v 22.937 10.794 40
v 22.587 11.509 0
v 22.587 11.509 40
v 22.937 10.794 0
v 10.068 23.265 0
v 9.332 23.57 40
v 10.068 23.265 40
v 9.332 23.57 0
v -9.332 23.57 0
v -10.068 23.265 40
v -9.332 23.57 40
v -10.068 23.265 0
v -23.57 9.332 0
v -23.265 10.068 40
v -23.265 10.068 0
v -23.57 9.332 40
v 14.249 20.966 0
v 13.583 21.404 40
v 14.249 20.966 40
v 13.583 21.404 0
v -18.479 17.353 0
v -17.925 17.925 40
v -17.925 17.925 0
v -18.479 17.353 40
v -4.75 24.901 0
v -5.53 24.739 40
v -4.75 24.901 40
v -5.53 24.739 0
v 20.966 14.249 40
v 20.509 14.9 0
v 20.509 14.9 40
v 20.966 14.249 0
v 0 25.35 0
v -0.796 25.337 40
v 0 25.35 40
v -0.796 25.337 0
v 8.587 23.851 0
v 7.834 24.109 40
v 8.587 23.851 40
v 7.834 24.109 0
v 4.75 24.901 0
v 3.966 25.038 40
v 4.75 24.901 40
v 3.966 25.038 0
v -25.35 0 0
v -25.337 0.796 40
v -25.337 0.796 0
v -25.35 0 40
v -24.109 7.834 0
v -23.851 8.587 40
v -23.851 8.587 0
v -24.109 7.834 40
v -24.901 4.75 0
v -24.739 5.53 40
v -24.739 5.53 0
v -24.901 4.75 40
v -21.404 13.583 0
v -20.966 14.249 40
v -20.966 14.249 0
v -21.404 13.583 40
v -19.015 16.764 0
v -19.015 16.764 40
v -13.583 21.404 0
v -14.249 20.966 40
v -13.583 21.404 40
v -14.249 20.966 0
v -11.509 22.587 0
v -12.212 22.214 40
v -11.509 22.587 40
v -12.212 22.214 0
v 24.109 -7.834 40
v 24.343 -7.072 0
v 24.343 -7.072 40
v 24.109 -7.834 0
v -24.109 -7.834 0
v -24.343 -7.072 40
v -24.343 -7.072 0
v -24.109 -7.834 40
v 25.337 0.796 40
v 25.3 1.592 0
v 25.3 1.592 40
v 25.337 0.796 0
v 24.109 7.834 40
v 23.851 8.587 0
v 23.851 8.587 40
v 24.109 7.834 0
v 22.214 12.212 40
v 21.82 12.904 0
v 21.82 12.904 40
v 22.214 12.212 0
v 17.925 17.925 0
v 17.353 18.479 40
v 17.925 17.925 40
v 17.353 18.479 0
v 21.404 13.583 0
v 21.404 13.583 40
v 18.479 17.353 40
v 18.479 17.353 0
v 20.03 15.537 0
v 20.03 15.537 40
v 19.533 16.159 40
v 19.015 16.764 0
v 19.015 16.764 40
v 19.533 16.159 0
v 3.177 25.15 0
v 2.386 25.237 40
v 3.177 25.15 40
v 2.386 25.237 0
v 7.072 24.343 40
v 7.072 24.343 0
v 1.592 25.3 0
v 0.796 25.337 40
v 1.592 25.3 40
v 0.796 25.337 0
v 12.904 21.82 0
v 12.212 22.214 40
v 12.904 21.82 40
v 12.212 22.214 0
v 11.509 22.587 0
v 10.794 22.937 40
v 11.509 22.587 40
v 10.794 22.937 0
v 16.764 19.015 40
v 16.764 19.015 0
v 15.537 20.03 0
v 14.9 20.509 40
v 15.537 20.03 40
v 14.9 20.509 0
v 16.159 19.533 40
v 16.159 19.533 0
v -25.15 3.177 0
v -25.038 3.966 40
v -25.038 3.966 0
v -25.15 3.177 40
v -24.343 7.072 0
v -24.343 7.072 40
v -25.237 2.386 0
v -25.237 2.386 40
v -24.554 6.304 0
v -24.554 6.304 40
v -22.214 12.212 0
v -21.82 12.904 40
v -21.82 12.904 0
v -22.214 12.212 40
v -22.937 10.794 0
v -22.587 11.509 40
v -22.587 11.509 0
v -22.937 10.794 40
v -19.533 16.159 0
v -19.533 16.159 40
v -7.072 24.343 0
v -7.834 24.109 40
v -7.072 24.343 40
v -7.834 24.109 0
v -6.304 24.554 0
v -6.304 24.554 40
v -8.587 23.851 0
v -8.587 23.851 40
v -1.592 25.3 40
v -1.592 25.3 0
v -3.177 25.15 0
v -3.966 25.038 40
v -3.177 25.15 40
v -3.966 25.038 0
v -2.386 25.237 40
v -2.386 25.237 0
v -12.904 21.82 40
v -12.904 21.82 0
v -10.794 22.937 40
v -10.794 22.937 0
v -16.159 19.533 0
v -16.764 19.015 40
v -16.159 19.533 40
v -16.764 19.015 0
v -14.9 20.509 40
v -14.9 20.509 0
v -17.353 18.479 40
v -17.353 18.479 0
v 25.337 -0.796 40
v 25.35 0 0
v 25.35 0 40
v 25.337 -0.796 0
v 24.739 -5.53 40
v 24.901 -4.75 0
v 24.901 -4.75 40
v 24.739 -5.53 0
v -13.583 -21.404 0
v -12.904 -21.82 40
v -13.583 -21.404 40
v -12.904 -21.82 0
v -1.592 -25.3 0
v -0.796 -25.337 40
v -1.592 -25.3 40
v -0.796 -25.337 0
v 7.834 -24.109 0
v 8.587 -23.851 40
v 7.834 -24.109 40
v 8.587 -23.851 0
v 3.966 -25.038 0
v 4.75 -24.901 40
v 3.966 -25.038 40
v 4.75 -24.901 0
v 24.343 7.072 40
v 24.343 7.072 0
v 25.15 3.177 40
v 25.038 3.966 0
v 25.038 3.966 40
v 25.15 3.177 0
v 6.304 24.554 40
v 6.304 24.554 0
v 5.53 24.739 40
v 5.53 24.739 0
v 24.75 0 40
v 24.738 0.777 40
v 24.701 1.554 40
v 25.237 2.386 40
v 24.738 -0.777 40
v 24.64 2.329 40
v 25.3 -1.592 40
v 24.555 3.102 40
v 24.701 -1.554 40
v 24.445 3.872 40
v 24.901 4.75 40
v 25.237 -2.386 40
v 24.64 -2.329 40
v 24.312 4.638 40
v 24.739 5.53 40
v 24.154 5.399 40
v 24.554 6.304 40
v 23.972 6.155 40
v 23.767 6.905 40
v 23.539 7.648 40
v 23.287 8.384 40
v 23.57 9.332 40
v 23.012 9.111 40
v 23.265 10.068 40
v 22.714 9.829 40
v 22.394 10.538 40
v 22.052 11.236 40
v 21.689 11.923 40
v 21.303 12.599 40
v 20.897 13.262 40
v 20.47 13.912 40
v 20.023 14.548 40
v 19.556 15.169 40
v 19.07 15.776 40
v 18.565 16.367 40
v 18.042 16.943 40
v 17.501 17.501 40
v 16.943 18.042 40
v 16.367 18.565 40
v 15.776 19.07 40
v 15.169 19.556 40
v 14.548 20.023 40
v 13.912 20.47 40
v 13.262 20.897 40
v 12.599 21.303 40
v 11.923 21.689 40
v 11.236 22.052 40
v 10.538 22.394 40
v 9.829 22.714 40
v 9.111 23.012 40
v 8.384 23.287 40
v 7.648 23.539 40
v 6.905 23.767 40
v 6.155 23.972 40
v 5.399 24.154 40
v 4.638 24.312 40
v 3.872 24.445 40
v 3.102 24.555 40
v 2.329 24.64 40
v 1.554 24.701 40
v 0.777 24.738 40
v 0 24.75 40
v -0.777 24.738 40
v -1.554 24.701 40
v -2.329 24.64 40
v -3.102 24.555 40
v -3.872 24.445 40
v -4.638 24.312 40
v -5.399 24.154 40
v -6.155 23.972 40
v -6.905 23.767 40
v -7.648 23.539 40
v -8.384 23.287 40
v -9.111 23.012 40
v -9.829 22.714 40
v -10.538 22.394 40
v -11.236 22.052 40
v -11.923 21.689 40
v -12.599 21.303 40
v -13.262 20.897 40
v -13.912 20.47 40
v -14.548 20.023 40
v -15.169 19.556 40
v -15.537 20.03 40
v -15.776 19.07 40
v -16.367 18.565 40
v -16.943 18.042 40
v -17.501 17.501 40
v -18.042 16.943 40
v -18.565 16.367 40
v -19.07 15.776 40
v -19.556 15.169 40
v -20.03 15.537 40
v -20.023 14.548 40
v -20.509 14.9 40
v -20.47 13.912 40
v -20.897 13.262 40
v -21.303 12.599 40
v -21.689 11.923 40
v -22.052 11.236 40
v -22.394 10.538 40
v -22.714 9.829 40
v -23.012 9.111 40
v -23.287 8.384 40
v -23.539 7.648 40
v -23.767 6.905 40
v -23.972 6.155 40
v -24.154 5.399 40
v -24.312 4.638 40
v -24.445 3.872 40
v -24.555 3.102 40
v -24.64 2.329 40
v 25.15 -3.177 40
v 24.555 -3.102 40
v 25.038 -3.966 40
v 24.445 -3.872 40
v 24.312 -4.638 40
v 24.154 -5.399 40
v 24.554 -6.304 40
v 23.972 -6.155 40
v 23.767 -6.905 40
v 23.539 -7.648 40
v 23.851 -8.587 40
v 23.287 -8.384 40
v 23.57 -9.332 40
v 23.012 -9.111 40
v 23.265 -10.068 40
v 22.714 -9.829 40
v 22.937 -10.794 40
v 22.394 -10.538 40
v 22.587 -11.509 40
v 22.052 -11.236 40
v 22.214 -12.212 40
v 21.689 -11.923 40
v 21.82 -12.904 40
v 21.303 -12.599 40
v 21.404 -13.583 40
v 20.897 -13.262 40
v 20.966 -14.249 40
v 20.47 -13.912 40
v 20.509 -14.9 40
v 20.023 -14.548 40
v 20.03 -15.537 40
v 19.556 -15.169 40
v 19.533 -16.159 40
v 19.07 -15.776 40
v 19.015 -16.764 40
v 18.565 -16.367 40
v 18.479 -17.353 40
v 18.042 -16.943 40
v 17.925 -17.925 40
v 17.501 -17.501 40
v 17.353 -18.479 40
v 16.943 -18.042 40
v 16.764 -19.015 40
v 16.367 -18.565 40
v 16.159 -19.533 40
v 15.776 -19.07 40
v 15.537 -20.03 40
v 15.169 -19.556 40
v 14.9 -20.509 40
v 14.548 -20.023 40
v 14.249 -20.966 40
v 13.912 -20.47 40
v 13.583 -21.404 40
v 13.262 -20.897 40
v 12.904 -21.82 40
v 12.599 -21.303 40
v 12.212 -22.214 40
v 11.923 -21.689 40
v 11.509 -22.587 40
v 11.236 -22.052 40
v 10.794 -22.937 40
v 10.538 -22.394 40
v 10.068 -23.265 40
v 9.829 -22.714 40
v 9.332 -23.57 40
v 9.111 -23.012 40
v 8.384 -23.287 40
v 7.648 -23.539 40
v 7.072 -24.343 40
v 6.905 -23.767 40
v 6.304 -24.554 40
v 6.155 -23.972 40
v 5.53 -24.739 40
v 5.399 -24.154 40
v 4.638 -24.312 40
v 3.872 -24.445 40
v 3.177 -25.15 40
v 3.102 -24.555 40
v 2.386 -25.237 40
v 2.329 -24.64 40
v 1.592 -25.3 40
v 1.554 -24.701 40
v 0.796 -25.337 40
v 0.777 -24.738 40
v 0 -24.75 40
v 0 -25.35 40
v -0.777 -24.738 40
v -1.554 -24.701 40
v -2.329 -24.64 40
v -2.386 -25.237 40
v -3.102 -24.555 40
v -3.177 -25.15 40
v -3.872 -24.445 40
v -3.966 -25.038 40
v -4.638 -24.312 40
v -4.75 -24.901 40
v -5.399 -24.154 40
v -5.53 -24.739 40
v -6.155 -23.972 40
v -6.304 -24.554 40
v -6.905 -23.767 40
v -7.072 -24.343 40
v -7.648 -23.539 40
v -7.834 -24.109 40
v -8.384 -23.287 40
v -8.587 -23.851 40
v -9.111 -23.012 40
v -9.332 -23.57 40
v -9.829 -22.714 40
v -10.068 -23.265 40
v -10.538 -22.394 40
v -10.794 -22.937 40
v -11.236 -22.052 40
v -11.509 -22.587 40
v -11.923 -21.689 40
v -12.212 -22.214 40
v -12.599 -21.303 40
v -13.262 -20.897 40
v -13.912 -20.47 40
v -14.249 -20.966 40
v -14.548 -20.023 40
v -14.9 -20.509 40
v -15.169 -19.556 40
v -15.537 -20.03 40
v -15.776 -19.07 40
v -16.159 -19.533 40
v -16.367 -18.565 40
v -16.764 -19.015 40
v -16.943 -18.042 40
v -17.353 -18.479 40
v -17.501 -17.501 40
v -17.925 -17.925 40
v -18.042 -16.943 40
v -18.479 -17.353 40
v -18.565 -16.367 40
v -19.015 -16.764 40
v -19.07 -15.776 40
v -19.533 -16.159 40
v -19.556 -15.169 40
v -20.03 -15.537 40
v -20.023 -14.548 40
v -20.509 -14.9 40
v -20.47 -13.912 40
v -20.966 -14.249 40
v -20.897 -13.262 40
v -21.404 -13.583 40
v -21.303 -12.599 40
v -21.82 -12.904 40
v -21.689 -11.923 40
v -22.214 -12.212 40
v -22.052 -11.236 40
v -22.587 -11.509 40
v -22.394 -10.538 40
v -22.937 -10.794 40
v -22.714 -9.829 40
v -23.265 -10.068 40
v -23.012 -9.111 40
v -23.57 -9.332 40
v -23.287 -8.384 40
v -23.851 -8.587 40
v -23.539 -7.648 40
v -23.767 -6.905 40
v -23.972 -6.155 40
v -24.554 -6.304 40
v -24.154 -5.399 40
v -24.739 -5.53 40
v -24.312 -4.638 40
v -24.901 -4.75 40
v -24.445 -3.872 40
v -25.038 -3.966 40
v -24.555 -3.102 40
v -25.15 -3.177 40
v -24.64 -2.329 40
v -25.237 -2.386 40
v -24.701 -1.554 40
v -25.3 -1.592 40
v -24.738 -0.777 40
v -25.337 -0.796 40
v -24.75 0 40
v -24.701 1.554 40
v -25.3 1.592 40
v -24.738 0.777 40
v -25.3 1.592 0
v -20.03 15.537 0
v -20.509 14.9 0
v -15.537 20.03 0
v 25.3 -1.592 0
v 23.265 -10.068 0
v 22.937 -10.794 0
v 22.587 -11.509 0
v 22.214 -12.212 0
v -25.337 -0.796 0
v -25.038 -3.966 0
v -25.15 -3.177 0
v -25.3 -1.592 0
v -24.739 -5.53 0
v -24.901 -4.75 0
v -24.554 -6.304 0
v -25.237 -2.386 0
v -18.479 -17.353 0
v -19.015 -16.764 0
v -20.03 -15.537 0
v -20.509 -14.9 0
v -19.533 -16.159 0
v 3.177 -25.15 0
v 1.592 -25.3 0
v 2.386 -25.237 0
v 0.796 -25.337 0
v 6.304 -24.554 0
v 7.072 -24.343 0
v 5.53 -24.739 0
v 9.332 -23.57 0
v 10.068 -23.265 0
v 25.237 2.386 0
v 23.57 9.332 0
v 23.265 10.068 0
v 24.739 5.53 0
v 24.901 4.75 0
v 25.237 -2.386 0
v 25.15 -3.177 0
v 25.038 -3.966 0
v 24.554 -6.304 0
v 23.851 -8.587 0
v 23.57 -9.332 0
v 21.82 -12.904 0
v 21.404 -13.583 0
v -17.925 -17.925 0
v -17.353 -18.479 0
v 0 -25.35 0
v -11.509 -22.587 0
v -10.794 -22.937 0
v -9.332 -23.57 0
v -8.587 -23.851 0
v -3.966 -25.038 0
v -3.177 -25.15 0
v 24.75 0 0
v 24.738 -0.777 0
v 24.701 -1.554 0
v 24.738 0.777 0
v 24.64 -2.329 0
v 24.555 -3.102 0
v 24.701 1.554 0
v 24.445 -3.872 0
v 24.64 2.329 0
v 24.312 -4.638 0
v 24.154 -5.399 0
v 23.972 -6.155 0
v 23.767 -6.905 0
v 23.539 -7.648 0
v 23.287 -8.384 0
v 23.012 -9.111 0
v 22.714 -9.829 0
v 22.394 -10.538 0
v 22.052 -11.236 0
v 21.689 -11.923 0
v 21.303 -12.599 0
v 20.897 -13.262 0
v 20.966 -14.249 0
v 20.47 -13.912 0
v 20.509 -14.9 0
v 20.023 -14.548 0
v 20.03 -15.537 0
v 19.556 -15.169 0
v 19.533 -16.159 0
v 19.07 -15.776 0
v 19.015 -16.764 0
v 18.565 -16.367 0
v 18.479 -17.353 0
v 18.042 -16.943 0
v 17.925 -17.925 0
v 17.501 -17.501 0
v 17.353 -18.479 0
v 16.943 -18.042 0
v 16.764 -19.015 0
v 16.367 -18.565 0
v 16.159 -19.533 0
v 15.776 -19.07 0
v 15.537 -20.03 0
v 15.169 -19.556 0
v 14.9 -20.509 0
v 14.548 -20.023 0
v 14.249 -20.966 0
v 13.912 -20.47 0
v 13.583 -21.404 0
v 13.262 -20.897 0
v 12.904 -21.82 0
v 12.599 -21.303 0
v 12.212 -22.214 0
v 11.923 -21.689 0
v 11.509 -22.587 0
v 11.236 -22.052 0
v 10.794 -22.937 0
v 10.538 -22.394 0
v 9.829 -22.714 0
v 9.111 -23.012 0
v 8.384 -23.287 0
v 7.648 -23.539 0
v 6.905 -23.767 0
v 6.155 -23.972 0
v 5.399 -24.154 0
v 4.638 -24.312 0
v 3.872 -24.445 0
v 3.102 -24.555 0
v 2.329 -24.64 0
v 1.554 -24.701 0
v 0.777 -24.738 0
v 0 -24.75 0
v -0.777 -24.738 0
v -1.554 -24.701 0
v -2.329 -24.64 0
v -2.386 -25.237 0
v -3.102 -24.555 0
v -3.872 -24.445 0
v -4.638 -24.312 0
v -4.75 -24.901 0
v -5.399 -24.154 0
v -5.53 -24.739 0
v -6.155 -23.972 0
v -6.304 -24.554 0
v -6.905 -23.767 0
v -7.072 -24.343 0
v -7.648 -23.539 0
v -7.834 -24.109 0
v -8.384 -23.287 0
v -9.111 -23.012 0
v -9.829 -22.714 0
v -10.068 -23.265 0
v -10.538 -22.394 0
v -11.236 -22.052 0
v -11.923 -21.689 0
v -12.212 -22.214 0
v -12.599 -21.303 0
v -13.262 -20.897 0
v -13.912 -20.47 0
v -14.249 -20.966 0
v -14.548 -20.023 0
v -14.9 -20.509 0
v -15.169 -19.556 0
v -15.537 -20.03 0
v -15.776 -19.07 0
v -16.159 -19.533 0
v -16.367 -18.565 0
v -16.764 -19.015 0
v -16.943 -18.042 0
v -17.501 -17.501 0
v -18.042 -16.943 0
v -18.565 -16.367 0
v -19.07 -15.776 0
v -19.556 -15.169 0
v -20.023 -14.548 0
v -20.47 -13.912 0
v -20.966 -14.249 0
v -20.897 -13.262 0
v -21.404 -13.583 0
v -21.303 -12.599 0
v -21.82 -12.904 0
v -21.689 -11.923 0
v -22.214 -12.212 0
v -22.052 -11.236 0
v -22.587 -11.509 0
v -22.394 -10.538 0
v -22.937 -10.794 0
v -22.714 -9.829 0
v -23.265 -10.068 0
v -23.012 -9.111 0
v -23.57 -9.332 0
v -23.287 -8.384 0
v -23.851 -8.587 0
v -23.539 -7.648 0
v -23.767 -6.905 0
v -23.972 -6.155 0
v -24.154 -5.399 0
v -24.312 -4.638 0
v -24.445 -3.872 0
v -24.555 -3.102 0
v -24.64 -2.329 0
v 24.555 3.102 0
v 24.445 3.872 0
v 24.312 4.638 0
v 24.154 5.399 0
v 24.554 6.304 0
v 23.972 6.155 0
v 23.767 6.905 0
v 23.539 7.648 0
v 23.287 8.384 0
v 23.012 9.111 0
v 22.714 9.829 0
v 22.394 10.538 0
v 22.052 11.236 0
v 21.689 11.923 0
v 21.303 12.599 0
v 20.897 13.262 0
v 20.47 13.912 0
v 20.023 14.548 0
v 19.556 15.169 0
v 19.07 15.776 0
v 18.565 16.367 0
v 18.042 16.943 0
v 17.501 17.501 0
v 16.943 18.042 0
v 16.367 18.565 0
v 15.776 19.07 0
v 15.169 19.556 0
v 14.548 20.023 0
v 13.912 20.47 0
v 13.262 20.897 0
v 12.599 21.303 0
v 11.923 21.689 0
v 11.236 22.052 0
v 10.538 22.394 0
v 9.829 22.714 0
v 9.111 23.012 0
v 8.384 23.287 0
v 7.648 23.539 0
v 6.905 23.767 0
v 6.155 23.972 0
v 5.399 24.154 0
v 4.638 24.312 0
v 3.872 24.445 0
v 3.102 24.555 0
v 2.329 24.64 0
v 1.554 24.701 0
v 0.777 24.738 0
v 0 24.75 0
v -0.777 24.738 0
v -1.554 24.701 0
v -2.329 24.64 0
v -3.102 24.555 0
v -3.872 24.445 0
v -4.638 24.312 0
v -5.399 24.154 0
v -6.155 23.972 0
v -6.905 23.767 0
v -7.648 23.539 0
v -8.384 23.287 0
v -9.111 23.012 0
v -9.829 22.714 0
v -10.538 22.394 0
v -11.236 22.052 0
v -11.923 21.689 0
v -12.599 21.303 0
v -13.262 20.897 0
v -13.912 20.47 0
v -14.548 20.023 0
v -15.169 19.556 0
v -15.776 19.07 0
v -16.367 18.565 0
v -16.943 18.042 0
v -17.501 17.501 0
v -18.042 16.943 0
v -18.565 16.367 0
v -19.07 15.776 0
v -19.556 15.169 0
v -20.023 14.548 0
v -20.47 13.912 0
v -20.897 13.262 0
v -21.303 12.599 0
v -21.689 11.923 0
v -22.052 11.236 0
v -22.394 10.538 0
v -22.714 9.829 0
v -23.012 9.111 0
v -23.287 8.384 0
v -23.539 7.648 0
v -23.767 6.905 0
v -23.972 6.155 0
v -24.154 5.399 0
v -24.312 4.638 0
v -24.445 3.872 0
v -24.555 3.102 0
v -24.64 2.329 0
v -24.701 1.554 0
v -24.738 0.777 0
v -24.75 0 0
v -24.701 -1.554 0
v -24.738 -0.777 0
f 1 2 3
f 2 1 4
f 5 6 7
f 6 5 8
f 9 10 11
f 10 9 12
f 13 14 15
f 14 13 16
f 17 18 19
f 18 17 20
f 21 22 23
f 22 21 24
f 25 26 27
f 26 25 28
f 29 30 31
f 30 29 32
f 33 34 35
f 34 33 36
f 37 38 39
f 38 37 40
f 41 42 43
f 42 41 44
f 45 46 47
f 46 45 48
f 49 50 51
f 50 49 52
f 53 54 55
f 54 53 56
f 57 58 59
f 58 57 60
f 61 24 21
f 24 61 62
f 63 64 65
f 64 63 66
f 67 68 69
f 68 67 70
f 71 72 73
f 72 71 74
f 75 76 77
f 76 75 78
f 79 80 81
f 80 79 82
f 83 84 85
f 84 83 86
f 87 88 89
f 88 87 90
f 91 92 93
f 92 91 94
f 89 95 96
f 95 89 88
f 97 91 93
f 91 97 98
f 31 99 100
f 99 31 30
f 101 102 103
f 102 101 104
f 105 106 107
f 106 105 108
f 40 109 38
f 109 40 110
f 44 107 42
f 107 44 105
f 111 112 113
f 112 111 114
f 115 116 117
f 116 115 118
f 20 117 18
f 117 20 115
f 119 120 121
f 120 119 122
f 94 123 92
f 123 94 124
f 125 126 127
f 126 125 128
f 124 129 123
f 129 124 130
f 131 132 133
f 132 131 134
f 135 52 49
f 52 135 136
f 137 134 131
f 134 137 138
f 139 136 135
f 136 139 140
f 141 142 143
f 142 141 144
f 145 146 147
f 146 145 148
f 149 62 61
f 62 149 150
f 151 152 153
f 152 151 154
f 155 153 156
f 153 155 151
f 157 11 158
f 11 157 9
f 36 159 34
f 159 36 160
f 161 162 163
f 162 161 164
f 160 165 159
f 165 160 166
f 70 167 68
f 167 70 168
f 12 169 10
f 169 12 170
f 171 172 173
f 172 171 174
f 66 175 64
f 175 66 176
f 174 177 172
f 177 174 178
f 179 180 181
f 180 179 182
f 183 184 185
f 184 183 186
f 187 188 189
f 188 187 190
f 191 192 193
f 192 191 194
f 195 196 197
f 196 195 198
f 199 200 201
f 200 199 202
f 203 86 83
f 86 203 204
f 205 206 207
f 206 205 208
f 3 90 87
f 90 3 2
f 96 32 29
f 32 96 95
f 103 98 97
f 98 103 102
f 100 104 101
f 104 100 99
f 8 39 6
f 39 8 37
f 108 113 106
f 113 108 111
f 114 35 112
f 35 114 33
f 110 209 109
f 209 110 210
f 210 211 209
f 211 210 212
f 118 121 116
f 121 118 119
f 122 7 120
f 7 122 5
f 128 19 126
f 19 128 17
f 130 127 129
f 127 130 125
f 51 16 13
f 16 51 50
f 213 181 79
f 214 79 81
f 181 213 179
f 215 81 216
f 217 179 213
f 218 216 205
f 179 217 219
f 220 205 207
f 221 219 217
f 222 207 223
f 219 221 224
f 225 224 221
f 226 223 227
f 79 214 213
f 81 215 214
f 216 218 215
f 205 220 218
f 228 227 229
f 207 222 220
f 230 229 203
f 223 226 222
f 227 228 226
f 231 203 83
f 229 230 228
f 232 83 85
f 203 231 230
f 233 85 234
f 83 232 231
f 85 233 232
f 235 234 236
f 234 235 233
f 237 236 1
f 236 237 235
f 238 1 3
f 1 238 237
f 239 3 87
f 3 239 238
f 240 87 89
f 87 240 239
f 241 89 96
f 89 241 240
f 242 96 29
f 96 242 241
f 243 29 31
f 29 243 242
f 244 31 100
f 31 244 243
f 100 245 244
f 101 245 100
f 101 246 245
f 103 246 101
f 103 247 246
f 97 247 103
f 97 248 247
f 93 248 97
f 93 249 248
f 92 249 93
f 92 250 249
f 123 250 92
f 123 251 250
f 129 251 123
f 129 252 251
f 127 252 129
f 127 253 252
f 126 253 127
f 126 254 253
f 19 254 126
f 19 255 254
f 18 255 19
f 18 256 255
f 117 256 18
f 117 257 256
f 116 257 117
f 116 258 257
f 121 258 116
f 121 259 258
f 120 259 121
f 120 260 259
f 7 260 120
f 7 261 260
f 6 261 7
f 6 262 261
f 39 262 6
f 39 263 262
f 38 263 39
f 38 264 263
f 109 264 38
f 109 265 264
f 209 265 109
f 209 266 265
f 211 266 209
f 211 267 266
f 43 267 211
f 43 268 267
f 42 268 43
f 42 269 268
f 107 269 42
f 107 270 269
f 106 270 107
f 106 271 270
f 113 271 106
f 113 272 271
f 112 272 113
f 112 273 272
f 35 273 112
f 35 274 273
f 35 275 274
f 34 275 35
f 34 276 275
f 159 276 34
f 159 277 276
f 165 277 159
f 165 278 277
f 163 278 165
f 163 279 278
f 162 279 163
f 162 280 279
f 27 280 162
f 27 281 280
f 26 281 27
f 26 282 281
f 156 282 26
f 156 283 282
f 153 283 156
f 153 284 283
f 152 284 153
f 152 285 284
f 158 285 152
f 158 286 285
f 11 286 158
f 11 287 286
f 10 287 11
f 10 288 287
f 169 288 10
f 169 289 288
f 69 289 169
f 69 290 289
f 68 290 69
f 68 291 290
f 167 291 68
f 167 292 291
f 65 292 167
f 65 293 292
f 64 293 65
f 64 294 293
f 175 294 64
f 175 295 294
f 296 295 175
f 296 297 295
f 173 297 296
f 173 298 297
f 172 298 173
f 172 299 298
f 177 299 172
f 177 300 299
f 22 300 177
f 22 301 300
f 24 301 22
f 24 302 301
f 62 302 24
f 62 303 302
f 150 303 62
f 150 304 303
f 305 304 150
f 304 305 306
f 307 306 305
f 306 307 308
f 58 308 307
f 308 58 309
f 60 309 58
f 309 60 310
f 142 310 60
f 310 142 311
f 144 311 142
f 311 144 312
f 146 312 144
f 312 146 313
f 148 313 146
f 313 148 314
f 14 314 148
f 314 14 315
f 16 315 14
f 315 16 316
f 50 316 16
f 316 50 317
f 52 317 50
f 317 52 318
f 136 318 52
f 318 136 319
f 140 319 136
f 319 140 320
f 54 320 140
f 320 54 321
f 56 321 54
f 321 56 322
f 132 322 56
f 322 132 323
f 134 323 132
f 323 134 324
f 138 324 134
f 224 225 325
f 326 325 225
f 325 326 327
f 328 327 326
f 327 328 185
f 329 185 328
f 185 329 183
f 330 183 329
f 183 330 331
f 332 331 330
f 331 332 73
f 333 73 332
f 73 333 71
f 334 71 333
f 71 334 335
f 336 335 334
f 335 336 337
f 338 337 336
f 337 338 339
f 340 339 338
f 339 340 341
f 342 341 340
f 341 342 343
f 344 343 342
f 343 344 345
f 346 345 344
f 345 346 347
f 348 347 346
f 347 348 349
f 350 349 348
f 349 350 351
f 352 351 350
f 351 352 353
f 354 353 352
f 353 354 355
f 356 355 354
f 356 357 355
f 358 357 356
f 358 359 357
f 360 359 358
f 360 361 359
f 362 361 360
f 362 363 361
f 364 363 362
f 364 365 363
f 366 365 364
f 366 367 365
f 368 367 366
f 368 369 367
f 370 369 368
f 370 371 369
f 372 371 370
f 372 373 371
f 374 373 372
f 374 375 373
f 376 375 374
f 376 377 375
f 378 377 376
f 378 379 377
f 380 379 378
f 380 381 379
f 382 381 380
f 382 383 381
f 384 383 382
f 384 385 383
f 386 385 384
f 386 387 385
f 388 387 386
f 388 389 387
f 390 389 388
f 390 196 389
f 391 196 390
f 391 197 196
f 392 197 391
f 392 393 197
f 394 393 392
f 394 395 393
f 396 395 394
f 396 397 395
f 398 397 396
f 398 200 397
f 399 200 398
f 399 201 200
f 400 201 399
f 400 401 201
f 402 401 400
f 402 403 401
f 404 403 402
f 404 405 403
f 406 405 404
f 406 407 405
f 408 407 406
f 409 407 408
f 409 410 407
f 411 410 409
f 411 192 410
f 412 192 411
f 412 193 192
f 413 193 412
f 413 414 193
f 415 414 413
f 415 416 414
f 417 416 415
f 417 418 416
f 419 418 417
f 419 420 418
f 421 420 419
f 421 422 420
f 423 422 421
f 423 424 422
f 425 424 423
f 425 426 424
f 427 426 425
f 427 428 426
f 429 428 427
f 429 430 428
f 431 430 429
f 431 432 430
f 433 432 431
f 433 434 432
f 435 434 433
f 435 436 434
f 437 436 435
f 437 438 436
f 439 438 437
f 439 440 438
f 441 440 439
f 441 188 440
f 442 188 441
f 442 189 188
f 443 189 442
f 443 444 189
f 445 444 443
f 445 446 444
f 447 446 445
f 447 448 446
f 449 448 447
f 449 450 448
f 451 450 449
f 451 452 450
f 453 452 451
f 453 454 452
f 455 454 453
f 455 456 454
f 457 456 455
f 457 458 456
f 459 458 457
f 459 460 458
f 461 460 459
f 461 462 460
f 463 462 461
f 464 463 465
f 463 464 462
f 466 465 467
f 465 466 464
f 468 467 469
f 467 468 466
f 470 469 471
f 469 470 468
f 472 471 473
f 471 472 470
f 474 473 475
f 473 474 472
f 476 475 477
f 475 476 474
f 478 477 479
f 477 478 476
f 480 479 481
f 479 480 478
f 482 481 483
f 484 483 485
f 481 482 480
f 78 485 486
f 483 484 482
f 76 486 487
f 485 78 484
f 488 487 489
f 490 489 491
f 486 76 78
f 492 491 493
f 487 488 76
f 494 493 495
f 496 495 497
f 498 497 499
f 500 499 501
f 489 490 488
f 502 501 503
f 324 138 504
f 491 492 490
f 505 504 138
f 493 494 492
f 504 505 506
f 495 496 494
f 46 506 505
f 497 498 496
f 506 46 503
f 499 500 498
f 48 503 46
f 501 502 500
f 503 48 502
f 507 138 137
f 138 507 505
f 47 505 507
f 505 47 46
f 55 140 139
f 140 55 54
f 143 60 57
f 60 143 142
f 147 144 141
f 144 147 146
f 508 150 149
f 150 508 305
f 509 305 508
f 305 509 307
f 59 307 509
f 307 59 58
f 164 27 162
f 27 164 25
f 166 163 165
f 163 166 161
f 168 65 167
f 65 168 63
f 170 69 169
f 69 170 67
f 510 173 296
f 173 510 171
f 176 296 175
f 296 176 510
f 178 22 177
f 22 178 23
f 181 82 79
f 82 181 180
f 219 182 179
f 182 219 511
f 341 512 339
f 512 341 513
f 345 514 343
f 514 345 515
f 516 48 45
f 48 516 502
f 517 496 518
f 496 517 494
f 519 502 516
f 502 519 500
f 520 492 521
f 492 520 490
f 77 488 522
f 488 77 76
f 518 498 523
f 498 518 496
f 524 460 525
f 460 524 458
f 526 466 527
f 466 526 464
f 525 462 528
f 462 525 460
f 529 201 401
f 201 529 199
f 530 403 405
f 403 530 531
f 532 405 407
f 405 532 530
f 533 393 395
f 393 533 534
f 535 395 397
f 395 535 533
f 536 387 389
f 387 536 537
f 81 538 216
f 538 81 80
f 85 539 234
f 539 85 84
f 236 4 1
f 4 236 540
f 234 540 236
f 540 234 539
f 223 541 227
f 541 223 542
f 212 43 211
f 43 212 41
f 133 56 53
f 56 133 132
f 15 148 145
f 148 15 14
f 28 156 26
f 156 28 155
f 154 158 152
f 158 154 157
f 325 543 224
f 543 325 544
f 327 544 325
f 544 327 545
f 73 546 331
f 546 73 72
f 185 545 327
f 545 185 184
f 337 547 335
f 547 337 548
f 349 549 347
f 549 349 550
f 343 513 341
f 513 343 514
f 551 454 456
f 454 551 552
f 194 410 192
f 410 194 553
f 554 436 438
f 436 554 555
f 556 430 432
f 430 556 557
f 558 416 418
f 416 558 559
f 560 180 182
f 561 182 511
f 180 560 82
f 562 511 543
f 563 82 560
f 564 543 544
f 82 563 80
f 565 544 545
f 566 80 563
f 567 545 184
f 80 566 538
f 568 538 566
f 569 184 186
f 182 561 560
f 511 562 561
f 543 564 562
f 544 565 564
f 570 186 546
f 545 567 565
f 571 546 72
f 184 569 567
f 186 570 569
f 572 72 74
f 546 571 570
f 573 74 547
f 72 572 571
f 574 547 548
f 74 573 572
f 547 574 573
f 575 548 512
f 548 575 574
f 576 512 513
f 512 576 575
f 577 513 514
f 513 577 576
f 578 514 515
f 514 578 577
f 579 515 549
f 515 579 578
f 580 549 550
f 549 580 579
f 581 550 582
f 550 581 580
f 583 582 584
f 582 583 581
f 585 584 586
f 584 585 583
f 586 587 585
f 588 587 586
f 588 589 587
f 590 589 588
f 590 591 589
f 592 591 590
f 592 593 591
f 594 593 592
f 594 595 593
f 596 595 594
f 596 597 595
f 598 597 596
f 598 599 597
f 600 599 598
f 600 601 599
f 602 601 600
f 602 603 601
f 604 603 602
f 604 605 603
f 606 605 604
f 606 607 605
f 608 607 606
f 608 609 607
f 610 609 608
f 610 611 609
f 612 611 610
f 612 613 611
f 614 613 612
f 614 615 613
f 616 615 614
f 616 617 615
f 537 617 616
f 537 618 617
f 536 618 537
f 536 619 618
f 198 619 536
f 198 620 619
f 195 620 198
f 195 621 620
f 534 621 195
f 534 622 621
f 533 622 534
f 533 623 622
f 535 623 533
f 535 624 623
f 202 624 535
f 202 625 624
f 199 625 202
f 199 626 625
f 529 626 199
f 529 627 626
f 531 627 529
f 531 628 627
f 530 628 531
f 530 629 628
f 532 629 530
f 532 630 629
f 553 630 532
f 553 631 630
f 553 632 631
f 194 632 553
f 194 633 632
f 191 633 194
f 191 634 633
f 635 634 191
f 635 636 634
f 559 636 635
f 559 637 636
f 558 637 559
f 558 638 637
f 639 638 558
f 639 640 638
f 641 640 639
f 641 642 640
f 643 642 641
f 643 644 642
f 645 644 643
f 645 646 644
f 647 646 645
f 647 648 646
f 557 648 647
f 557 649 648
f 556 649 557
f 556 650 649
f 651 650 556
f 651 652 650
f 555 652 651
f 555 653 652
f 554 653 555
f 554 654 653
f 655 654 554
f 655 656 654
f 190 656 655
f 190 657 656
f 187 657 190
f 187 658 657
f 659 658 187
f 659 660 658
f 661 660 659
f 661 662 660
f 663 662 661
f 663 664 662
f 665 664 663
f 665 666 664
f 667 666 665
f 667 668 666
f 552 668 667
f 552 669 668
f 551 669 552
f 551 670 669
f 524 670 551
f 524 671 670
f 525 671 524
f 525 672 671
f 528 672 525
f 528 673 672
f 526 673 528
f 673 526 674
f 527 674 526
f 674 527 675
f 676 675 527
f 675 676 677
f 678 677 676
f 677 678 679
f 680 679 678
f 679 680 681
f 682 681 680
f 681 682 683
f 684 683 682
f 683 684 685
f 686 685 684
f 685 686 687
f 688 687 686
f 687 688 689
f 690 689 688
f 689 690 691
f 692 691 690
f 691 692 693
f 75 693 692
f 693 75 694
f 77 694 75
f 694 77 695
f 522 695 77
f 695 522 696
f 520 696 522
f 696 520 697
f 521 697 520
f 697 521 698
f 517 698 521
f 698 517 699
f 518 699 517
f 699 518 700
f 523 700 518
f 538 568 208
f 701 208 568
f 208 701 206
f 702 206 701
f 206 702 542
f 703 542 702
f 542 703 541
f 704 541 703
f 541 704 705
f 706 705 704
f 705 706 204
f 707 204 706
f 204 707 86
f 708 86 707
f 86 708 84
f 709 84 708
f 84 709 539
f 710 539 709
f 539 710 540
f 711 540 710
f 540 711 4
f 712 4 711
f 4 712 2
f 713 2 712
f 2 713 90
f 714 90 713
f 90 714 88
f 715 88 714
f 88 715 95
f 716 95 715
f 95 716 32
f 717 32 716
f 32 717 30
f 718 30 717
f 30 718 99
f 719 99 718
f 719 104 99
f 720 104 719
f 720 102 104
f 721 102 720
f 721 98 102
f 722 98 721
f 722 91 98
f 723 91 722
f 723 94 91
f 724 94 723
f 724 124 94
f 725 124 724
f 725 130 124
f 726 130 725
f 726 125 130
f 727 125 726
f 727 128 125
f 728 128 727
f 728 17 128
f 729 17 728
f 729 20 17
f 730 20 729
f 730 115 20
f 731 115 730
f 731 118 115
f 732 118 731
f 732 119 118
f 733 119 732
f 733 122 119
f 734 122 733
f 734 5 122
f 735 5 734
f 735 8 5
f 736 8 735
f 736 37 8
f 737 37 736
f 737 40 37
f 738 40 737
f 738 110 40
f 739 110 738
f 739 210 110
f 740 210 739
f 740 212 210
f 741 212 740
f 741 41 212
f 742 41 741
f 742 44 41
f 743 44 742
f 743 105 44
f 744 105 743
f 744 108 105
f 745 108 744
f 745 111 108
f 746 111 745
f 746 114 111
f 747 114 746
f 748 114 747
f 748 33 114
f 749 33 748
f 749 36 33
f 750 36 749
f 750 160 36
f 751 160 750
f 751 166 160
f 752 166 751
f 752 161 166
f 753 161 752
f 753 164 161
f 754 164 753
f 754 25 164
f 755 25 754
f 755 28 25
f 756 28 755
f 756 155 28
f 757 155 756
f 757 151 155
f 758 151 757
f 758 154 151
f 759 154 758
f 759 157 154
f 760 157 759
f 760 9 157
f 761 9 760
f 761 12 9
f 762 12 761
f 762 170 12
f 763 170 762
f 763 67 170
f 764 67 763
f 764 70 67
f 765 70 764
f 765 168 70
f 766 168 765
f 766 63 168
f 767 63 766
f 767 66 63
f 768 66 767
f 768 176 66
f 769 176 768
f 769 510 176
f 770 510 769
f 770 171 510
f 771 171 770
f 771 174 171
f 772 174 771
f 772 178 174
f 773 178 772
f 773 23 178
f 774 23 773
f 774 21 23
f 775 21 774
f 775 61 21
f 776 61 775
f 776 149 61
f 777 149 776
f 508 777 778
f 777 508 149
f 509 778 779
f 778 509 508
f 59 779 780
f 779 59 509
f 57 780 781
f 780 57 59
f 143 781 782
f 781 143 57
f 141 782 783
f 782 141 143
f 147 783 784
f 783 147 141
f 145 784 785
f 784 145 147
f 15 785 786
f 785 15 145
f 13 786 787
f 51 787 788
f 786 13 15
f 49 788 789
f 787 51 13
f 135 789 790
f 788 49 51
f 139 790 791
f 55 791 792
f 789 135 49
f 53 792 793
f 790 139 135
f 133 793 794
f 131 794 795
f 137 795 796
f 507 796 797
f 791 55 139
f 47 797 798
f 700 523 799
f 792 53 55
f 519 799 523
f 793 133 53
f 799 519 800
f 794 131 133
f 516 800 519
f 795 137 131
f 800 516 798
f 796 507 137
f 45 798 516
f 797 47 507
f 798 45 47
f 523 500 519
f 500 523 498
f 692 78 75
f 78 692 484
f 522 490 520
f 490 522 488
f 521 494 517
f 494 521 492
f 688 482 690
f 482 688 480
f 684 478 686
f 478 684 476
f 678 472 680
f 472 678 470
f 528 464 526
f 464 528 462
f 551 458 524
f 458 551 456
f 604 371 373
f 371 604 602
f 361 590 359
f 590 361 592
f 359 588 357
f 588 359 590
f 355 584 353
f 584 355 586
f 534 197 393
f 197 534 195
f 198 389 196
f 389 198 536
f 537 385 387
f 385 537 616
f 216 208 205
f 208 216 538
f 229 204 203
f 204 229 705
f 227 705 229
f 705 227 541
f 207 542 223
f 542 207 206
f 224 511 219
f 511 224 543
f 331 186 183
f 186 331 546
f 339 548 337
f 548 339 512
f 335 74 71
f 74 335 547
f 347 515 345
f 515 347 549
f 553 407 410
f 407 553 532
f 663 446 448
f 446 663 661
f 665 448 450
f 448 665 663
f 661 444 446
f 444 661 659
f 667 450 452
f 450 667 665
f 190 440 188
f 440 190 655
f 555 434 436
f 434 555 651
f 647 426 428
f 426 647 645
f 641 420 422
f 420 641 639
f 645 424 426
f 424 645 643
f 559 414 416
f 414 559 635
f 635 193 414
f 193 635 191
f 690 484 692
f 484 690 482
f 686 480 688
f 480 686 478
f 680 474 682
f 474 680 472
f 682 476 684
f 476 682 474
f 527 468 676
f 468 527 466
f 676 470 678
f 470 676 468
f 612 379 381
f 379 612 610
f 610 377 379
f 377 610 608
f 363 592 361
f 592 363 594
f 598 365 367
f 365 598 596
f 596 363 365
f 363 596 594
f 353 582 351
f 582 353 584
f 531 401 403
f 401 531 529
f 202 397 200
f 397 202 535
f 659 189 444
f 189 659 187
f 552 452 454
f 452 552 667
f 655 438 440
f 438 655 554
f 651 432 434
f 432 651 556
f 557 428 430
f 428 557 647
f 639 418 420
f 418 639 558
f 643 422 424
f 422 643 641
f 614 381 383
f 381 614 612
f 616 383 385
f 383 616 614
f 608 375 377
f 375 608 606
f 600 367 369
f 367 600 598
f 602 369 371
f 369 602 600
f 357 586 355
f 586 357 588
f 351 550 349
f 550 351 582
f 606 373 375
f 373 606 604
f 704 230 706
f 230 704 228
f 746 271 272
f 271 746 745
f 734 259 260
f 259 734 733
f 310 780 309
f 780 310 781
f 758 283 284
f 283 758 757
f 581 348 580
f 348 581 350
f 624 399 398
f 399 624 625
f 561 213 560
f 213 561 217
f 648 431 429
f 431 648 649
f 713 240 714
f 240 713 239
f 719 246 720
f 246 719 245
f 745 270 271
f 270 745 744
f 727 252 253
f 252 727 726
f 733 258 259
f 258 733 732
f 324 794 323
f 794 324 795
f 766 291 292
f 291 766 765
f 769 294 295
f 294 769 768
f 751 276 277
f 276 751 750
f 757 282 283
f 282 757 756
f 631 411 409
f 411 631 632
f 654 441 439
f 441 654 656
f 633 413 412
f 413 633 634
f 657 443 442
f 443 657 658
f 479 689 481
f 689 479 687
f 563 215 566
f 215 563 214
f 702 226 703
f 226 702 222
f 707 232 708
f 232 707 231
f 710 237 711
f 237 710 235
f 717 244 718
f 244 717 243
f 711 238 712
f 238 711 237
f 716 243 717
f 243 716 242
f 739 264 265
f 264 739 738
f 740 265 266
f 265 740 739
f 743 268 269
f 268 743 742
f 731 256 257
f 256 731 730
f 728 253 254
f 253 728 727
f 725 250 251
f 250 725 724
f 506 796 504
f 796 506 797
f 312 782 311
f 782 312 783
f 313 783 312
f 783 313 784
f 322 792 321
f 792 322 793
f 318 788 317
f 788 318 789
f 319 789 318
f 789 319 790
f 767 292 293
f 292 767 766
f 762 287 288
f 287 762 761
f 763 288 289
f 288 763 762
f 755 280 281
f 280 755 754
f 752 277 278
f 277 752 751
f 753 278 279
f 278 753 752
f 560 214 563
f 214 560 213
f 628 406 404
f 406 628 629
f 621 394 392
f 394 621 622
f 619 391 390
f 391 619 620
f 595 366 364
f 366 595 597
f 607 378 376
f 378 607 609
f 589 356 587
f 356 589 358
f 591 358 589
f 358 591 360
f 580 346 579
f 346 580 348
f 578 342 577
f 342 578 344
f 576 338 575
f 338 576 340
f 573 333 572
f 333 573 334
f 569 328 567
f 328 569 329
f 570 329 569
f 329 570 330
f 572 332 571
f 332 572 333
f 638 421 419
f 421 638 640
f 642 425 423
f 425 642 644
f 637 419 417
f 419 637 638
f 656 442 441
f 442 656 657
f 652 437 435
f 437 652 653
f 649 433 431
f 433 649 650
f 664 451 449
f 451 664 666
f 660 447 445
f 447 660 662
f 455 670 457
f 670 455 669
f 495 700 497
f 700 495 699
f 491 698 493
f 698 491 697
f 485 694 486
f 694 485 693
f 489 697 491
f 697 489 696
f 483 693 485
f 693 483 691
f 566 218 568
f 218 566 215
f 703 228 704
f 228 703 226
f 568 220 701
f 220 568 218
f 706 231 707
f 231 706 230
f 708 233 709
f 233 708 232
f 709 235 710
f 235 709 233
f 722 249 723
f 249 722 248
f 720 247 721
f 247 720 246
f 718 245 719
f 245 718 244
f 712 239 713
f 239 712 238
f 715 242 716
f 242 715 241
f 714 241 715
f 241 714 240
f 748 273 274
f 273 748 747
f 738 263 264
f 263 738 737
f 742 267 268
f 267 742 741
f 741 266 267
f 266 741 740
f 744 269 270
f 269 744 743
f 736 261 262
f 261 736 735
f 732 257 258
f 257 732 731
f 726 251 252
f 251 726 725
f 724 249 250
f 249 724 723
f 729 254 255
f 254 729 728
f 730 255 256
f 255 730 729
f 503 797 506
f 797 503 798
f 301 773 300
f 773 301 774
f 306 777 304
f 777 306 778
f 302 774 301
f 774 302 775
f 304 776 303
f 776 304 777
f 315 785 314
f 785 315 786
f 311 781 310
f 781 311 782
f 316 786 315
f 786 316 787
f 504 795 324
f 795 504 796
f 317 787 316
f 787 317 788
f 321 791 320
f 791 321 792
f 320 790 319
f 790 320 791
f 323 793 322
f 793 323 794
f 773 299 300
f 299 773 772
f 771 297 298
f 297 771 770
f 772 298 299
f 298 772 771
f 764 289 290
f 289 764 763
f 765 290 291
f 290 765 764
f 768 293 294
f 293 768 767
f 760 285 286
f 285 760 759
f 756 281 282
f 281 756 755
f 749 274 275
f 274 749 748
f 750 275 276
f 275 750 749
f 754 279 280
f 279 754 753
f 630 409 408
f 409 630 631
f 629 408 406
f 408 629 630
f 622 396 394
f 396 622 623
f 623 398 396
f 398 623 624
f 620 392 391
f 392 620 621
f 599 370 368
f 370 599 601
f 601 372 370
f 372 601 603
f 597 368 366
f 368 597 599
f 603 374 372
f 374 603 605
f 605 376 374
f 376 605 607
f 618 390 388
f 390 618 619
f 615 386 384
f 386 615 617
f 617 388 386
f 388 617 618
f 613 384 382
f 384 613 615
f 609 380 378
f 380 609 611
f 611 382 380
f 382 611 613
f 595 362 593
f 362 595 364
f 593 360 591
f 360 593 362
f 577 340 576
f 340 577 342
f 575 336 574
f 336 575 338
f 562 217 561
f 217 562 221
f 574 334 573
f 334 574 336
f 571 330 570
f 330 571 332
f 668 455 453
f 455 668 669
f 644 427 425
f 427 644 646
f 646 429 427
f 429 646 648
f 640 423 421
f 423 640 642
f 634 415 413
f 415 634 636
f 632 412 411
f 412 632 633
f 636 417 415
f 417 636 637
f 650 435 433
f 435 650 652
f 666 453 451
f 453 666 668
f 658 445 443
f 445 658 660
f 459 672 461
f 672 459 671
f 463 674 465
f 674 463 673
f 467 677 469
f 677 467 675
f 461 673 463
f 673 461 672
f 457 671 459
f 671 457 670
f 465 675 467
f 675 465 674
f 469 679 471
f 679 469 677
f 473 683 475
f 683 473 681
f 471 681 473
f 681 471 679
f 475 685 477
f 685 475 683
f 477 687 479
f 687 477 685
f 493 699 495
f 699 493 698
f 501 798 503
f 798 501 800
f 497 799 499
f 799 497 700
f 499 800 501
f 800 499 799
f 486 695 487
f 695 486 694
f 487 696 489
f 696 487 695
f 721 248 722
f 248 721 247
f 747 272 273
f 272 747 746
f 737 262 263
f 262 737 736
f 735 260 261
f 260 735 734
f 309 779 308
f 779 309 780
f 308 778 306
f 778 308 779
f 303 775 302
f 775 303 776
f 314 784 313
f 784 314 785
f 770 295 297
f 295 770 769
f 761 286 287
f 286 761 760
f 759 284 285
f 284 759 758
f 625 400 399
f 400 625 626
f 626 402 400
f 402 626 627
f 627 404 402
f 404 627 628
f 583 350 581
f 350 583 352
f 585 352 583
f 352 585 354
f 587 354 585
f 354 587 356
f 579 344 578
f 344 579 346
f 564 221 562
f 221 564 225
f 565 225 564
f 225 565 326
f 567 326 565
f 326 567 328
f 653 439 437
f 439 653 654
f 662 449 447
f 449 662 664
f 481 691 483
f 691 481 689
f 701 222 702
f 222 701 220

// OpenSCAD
// Barlow length adaptor ring
// Outer: 2" telescope focuser/mount barrel
// Inner: 46 mm bore
// Height: 40 mm

/* [Dimensions] */
outer_diameter = 50.8; // 2" standard eyepiece barrel (ISO 14134)
inner_diameter = 49.4;
height = 40.0;

/* [Fit / print] */
// Reduce OD slightly so a printed part slides into a metal 2" focuser
outer_clearance = 0.1;
// Extra ID for print shrinkage / easy fit of the inner piece
inner_clearance = 0.1;

/* [Quality] */
$fn = 200;

od = outer_diameter - outer_clearance;
id = inner_diameter + inner_clearance;

assert(od > id, "Outer diameter must be larger than inner diameter");

difference() {
    cylinder(h = height, d = od, center = false);
    translate([0, 0, -0.1])
        cylinder(h = height + 0.2, d = id, center = false);
}
